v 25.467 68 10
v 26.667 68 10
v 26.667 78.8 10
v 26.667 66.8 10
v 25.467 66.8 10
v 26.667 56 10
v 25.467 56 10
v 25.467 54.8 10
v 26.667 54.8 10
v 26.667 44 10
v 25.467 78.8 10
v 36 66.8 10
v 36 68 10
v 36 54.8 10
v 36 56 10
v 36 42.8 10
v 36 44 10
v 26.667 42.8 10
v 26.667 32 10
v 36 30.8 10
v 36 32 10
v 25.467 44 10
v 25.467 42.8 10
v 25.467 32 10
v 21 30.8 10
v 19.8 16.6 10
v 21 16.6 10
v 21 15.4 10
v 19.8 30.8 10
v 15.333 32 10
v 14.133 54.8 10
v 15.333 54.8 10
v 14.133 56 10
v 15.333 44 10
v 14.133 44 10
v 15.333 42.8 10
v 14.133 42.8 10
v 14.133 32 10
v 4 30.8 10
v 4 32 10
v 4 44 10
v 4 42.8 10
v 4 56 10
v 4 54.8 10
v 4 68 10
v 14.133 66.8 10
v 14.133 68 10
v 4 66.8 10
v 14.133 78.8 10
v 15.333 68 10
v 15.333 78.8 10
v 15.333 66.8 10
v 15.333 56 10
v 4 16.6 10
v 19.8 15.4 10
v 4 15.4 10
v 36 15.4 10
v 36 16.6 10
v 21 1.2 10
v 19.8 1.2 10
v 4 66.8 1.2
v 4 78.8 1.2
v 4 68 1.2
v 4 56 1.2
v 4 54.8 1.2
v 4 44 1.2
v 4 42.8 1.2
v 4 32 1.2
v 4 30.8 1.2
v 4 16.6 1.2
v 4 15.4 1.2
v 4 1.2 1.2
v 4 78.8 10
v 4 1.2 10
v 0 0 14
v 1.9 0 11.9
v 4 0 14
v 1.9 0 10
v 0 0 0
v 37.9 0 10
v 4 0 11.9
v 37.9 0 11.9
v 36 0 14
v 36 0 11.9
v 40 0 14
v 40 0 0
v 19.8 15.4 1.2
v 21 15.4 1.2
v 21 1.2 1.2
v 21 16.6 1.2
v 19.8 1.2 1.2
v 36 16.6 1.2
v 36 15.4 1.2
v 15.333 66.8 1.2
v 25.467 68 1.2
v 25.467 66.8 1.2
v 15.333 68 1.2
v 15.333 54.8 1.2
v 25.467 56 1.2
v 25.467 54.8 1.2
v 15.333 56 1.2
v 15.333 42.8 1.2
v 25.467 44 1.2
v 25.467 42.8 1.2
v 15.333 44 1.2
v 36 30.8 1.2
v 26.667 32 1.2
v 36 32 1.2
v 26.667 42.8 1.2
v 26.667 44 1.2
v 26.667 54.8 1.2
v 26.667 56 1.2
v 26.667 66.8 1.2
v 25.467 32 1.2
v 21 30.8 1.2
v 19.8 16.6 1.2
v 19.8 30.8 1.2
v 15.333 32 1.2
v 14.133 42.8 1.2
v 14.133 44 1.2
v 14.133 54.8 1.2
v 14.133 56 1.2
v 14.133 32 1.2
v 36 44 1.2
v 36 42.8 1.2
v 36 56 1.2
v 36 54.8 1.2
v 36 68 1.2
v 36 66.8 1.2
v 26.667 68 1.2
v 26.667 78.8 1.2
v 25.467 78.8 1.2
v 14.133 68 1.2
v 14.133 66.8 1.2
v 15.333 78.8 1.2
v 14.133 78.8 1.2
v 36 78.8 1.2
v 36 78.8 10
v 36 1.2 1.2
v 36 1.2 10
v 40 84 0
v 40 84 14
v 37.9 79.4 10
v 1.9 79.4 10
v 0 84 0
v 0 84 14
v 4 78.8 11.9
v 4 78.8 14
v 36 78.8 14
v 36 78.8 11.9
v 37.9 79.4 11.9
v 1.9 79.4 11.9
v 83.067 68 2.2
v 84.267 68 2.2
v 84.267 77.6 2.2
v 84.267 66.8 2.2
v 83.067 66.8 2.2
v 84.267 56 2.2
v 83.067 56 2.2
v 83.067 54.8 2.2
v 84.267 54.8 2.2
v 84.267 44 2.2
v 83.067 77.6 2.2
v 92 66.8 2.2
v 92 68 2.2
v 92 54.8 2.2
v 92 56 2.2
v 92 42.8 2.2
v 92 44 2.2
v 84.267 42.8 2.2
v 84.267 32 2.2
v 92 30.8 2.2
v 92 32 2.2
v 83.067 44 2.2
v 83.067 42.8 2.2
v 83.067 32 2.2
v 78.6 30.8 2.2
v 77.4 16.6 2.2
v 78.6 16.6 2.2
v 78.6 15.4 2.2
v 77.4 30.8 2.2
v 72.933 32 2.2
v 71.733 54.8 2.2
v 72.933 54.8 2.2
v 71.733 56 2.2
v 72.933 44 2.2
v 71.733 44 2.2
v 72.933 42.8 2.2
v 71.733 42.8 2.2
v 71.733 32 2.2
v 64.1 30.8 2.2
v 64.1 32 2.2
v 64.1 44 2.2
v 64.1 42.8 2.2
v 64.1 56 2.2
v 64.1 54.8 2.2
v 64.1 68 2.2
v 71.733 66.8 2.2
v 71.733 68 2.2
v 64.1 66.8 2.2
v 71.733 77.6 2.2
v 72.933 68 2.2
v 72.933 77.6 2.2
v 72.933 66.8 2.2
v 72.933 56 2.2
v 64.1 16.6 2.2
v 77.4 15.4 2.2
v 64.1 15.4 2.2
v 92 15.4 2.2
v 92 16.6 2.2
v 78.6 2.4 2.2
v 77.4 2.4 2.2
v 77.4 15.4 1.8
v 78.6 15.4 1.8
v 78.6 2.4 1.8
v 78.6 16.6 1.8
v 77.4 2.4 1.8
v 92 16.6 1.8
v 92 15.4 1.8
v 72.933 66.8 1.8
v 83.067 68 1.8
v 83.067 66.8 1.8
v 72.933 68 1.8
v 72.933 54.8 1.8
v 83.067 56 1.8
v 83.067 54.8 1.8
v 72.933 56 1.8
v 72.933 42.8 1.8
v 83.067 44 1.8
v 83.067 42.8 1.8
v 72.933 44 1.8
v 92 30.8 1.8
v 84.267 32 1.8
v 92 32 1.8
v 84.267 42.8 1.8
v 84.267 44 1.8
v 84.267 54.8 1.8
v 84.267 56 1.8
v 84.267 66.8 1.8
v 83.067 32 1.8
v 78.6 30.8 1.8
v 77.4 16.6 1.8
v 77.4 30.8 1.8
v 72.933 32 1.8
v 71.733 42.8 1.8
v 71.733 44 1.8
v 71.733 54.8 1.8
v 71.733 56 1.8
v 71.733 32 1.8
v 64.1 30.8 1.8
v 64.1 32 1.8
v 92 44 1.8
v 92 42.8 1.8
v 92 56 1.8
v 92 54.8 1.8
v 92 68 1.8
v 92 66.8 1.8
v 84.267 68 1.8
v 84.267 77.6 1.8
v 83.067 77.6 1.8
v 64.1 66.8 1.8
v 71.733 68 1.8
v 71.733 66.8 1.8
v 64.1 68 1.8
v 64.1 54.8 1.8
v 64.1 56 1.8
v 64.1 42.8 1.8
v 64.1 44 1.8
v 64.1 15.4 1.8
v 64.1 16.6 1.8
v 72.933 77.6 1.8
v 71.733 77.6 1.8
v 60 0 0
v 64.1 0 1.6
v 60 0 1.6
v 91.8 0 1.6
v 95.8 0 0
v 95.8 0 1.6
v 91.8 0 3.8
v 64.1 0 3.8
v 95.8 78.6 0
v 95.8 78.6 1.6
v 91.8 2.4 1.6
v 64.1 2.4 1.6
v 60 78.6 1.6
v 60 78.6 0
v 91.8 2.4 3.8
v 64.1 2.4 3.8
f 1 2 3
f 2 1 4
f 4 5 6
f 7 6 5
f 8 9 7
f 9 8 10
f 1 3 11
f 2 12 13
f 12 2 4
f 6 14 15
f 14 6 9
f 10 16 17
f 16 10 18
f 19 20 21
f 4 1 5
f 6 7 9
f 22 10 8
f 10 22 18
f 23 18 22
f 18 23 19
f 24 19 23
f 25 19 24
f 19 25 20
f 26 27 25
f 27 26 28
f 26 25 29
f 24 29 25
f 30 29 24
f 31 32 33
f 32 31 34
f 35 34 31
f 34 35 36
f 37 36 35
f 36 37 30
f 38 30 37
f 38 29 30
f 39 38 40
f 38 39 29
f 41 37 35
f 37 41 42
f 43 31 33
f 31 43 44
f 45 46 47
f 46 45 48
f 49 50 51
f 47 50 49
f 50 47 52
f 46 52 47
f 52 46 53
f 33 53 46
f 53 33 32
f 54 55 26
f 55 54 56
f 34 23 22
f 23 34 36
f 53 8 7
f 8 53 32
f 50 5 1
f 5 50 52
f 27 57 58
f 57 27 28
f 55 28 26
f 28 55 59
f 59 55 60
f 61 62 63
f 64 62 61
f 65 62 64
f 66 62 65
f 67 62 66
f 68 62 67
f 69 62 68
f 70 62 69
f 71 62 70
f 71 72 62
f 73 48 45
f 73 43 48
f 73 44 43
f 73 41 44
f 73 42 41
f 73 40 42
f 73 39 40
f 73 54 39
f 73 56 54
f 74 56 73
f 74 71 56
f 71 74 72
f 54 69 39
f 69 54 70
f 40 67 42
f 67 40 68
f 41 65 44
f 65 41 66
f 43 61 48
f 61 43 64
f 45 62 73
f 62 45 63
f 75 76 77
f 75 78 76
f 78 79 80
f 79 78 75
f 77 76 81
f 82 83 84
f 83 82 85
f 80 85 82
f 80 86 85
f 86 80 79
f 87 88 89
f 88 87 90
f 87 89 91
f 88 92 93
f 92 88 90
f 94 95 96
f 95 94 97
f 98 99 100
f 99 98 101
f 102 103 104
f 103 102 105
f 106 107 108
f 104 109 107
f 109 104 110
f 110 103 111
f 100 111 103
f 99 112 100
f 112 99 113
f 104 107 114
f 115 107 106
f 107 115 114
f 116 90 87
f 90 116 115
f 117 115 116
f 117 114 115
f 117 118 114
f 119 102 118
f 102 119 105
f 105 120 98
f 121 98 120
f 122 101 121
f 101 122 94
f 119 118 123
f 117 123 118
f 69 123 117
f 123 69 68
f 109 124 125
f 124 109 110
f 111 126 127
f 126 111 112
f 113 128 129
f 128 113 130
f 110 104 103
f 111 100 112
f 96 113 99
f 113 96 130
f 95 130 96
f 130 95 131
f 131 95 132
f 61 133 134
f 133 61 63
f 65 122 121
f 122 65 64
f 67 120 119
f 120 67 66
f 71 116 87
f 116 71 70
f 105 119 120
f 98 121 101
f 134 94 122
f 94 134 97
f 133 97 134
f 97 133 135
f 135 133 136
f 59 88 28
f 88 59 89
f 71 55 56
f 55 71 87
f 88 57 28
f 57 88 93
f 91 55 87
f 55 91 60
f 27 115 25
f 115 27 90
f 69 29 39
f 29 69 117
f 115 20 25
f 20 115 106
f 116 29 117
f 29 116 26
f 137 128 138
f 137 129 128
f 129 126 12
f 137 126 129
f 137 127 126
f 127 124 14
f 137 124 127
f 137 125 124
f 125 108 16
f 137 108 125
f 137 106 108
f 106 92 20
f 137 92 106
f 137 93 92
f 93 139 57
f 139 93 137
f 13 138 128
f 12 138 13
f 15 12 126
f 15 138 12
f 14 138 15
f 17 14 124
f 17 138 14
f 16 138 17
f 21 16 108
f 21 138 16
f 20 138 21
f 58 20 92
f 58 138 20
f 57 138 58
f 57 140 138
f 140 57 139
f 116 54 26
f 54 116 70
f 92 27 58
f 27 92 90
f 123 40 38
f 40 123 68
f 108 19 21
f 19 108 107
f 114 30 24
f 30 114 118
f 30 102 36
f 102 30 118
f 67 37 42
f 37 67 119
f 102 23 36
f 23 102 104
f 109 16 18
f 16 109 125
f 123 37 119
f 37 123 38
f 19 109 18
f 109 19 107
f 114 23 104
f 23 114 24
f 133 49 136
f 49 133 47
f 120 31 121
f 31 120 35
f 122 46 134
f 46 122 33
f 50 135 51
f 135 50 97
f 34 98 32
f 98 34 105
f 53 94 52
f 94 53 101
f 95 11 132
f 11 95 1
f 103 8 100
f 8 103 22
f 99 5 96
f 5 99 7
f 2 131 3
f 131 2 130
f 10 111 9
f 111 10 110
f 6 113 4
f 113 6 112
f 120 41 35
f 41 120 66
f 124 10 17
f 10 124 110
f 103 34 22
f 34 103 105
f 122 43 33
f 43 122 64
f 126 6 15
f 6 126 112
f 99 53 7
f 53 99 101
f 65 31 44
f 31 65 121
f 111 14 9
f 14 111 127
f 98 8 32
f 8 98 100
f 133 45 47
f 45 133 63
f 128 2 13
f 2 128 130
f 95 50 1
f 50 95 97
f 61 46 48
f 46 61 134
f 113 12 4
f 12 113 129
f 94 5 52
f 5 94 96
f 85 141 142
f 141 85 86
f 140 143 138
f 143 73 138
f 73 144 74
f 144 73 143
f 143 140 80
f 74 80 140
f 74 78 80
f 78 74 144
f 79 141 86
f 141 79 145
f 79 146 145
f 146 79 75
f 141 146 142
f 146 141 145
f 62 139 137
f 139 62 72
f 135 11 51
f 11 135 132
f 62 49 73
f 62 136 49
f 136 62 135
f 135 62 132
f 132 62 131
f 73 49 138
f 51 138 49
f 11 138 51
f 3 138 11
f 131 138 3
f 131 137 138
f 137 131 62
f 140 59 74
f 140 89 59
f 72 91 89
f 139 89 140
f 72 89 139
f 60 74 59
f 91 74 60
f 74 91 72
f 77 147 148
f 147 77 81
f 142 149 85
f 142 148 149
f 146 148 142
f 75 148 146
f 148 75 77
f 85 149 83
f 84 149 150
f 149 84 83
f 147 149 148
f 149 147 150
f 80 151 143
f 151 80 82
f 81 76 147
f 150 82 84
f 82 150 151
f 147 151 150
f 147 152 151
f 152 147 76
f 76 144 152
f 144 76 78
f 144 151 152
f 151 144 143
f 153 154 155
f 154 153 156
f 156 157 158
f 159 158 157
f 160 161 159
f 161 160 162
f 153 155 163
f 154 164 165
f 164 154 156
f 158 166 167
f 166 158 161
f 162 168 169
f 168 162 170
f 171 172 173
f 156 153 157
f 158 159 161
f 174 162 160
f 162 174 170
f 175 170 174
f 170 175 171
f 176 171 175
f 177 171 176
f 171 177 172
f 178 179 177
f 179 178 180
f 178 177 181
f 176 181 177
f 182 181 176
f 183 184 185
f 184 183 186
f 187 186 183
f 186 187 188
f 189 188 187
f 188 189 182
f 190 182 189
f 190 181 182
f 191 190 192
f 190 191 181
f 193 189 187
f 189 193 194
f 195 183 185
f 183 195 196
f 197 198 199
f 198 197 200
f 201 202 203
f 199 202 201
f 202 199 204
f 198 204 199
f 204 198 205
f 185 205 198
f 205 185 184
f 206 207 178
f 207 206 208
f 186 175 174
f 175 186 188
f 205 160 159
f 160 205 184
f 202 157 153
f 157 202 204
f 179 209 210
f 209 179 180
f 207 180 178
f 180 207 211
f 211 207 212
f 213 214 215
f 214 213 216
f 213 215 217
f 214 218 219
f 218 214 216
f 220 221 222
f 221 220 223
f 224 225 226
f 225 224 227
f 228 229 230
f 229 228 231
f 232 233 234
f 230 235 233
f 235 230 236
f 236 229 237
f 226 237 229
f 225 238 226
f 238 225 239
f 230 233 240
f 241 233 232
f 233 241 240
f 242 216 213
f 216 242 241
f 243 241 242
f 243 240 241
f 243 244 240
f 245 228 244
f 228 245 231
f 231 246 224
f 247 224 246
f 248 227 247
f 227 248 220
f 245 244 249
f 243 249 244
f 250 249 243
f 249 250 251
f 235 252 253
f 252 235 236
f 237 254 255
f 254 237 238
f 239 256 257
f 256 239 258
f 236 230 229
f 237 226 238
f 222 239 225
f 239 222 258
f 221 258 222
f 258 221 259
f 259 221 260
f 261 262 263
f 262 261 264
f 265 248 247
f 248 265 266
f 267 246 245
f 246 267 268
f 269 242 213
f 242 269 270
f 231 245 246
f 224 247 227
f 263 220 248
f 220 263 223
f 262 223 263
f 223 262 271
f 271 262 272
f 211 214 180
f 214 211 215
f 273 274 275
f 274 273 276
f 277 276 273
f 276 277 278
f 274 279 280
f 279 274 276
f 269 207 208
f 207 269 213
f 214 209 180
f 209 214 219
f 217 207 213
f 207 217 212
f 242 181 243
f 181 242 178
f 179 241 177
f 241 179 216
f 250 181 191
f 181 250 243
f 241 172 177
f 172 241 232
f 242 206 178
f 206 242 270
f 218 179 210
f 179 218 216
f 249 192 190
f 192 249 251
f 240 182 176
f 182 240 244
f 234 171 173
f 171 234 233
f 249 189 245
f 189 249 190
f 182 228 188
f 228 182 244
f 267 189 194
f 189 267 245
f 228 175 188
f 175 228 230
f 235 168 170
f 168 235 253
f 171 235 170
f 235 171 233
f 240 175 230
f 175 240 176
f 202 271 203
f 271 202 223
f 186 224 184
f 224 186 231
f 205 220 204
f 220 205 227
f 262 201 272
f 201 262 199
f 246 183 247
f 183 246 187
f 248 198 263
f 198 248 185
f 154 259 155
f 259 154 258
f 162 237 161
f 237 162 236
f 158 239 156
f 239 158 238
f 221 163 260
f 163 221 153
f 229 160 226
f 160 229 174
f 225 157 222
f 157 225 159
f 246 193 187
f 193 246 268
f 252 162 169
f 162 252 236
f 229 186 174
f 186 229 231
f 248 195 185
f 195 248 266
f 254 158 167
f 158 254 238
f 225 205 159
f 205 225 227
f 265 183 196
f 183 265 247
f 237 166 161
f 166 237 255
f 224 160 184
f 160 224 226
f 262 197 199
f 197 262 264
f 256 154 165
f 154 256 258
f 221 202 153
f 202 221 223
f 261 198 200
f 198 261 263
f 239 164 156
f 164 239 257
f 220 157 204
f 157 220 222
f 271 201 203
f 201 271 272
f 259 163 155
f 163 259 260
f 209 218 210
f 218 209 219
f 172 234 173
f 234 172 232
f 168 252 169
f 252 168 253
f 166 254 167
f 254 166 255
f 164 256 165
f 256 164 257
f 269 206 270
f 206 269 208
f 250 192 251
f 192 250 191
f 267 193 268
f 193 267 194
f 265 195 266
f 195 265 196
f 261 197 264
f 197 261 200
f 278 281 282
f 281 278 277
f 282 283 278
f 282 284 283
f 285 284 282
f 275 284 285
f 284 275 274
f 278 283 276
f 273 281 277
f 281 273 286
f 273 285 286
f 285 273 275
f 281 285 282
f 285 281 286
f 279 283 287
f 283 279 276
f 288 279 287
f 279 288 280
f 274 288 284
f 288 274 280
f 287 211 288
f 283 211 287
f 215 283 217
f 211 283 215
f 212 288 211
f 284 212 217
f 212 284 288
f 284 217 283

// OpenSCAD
// configuration 
box_width = 40;
box_depth = 80;
box_height = 10;

wall_thickness = 1.2;

side_thickness = 4;

lid_clearance = 0.1;
lid_thickness = 1.8;
lid_grid_height = 0.4;
upper_wall_height = 4;

// size in quantum of full grid units, where 1 = 1 unit
// unit is relative to box size and amount of slots, calculated to fit everything inside
rows = [2, 2, 2, 2, 2];
columns = [3, 3, 3, 2, 2];

function cumulativeSum(vec) = [for (sum=vec[0], i=1; i<=len(vec); newsum=sum+vec[i], nexti=i+1, sum=newsum, i=nexti) sum];

module renderGrid(rows, columns, width, depth, height) {
    rowsOffsets = cumulativeSum(rows);
    totalDepthInQuant = rowsOffsets[len(rows)-1];
    
    echo("Total: ", totalDepthInQuant);
    rowSize = (depth-wall_thickness - (totalDepthInQuant)*wall_thickness)/totalDepthInQuant + wall_thickness;
    echo("RowSize:", rowSize);
    for(i = [0: len(rowsOffsets) - 1]) {
        translate([0, rowsOffsets[i] * rowSize, 0]) cube([box_width-2*side_thickness, wall_thickness, height], center=false);
        columnSize = (width - 1.5*side_thickness) / columns[i];
        for (x = [0 : columns[i]]) {
            echo(x, columnSize, "RO: ", rowsOffsets[i], ", size: ", rowSize);
            translate([x * columnSize, rowsOffsets[i] * rowSize, 0]) {
                rotate([0, 0, 180]) cube([wall_thickness, rowSize * rows[i], height], center=false);
            }
        }
    };
}

module renderBox(dimensions) {
    width = dimensions[0];
    height = dimensions[2];
    depth = dimensions[1];
    
    difference() {
        cube([width, depth + side_thickness, height], center=false);    
        translate([side_thickness, wall_thickness, wall_thickness]) {
            cube([width - side_thickness*2, depth - 2 * wall_thickness, height], center=false);
        }
    }
    
    translate([0, 0, height]) cube([side_thickness, dimensions[1], upper_wall_height], center=false);
    translate([width-side_thickness, 0, height]) cube([side_thickness, dimensions[1], upper_wall_height], center=false);
    translate([0, depth - wall_thickness, height]) cube([width, side_thickness + wall_thickness, upper_wall_height], center = false);
}

module renderLidWithGrid() {
    translate([side_thickness-wall_thickness*2, 0, lid_thickness])renderGrid([2, 2], [2, 2], box_width, box_depth/2.5, lid_grid_height);
    translate([side_thickness-wall_thickness*2, box_depth/2.5-wall_thickness, lid_thickness])renderGrid([2, 2, 2, 2], [3, 3, 3, 3], box_width, box_depth-(box_depth/2.5)+wall_thickness, lid_grid_height);
}

module renderLid(dimensions) {
    width = dimensions[0];
    height = dimensions[2];
    depth = dimensions[1];
    
    cube([width, depth, height], center=false);
    translate([side_thickness + lid_clearance, 0, lid_thickness-lid_clearance*2]) cube([width - 2 * side_thickness -lid_clearance, wall_thickness*2, upper_wall_height - lid_thickness], center = false);
    
}

difference()
{    
    renderBox([box_width, box_depth, box_height]);
    // lid rail
    translate([side_thickness/2 - lid_clearance, -wall_thickness/2, box_height]) cube([box_width-side_thickness, box_depth, lid_thickness+lid_clearance], center=false);
    
//    translate([box_width - 1.5 * side_thickness + lid_clearance, -wall_thickness, box_height]) cube([side_thickness, box_depth, lid_thickness+lid_clearance], center=false);
    
    
}

translate([side_thickness, 0, wall_thickness])renderGrid([2, 2], [2, 2], box_width, box_depth/2.5, box_height-wall_thickness);
translate([side_thickness, box_depth/2.5-wall_thickness, wall_thickness])renderGrid([2, 2, 2, 2], [3, 3, 3, 3], box_width, box_depth-(box_depth/2.5)+wall_thickness, box_height-wall_thickness);

translate([box_width * 1.5, 0, 0])
{
    renderLid([box_width - side_thickness - 2*lid_clearance, box_depth - wall_thickness - lid_clearance*2, lid_thickness - lid_clearance * 2]);

    difference()
    {
        renderLidWithGrid();

        translate([0, box_depth-2*wall_thickness, 0]) cube([box_width, wall_thickness*3, box_height]);
        translate([box_width-2*side_thickness, -wall_thickness, 0]) cube([side_thickness*2, box_depth + wall_thickness * 2, box_height]);
        translate([0, -wall_thickness, 0]) cube([side_thickness+lid_clearance, box_depth + wall_thickness * 2, box_height]);
    }
}
